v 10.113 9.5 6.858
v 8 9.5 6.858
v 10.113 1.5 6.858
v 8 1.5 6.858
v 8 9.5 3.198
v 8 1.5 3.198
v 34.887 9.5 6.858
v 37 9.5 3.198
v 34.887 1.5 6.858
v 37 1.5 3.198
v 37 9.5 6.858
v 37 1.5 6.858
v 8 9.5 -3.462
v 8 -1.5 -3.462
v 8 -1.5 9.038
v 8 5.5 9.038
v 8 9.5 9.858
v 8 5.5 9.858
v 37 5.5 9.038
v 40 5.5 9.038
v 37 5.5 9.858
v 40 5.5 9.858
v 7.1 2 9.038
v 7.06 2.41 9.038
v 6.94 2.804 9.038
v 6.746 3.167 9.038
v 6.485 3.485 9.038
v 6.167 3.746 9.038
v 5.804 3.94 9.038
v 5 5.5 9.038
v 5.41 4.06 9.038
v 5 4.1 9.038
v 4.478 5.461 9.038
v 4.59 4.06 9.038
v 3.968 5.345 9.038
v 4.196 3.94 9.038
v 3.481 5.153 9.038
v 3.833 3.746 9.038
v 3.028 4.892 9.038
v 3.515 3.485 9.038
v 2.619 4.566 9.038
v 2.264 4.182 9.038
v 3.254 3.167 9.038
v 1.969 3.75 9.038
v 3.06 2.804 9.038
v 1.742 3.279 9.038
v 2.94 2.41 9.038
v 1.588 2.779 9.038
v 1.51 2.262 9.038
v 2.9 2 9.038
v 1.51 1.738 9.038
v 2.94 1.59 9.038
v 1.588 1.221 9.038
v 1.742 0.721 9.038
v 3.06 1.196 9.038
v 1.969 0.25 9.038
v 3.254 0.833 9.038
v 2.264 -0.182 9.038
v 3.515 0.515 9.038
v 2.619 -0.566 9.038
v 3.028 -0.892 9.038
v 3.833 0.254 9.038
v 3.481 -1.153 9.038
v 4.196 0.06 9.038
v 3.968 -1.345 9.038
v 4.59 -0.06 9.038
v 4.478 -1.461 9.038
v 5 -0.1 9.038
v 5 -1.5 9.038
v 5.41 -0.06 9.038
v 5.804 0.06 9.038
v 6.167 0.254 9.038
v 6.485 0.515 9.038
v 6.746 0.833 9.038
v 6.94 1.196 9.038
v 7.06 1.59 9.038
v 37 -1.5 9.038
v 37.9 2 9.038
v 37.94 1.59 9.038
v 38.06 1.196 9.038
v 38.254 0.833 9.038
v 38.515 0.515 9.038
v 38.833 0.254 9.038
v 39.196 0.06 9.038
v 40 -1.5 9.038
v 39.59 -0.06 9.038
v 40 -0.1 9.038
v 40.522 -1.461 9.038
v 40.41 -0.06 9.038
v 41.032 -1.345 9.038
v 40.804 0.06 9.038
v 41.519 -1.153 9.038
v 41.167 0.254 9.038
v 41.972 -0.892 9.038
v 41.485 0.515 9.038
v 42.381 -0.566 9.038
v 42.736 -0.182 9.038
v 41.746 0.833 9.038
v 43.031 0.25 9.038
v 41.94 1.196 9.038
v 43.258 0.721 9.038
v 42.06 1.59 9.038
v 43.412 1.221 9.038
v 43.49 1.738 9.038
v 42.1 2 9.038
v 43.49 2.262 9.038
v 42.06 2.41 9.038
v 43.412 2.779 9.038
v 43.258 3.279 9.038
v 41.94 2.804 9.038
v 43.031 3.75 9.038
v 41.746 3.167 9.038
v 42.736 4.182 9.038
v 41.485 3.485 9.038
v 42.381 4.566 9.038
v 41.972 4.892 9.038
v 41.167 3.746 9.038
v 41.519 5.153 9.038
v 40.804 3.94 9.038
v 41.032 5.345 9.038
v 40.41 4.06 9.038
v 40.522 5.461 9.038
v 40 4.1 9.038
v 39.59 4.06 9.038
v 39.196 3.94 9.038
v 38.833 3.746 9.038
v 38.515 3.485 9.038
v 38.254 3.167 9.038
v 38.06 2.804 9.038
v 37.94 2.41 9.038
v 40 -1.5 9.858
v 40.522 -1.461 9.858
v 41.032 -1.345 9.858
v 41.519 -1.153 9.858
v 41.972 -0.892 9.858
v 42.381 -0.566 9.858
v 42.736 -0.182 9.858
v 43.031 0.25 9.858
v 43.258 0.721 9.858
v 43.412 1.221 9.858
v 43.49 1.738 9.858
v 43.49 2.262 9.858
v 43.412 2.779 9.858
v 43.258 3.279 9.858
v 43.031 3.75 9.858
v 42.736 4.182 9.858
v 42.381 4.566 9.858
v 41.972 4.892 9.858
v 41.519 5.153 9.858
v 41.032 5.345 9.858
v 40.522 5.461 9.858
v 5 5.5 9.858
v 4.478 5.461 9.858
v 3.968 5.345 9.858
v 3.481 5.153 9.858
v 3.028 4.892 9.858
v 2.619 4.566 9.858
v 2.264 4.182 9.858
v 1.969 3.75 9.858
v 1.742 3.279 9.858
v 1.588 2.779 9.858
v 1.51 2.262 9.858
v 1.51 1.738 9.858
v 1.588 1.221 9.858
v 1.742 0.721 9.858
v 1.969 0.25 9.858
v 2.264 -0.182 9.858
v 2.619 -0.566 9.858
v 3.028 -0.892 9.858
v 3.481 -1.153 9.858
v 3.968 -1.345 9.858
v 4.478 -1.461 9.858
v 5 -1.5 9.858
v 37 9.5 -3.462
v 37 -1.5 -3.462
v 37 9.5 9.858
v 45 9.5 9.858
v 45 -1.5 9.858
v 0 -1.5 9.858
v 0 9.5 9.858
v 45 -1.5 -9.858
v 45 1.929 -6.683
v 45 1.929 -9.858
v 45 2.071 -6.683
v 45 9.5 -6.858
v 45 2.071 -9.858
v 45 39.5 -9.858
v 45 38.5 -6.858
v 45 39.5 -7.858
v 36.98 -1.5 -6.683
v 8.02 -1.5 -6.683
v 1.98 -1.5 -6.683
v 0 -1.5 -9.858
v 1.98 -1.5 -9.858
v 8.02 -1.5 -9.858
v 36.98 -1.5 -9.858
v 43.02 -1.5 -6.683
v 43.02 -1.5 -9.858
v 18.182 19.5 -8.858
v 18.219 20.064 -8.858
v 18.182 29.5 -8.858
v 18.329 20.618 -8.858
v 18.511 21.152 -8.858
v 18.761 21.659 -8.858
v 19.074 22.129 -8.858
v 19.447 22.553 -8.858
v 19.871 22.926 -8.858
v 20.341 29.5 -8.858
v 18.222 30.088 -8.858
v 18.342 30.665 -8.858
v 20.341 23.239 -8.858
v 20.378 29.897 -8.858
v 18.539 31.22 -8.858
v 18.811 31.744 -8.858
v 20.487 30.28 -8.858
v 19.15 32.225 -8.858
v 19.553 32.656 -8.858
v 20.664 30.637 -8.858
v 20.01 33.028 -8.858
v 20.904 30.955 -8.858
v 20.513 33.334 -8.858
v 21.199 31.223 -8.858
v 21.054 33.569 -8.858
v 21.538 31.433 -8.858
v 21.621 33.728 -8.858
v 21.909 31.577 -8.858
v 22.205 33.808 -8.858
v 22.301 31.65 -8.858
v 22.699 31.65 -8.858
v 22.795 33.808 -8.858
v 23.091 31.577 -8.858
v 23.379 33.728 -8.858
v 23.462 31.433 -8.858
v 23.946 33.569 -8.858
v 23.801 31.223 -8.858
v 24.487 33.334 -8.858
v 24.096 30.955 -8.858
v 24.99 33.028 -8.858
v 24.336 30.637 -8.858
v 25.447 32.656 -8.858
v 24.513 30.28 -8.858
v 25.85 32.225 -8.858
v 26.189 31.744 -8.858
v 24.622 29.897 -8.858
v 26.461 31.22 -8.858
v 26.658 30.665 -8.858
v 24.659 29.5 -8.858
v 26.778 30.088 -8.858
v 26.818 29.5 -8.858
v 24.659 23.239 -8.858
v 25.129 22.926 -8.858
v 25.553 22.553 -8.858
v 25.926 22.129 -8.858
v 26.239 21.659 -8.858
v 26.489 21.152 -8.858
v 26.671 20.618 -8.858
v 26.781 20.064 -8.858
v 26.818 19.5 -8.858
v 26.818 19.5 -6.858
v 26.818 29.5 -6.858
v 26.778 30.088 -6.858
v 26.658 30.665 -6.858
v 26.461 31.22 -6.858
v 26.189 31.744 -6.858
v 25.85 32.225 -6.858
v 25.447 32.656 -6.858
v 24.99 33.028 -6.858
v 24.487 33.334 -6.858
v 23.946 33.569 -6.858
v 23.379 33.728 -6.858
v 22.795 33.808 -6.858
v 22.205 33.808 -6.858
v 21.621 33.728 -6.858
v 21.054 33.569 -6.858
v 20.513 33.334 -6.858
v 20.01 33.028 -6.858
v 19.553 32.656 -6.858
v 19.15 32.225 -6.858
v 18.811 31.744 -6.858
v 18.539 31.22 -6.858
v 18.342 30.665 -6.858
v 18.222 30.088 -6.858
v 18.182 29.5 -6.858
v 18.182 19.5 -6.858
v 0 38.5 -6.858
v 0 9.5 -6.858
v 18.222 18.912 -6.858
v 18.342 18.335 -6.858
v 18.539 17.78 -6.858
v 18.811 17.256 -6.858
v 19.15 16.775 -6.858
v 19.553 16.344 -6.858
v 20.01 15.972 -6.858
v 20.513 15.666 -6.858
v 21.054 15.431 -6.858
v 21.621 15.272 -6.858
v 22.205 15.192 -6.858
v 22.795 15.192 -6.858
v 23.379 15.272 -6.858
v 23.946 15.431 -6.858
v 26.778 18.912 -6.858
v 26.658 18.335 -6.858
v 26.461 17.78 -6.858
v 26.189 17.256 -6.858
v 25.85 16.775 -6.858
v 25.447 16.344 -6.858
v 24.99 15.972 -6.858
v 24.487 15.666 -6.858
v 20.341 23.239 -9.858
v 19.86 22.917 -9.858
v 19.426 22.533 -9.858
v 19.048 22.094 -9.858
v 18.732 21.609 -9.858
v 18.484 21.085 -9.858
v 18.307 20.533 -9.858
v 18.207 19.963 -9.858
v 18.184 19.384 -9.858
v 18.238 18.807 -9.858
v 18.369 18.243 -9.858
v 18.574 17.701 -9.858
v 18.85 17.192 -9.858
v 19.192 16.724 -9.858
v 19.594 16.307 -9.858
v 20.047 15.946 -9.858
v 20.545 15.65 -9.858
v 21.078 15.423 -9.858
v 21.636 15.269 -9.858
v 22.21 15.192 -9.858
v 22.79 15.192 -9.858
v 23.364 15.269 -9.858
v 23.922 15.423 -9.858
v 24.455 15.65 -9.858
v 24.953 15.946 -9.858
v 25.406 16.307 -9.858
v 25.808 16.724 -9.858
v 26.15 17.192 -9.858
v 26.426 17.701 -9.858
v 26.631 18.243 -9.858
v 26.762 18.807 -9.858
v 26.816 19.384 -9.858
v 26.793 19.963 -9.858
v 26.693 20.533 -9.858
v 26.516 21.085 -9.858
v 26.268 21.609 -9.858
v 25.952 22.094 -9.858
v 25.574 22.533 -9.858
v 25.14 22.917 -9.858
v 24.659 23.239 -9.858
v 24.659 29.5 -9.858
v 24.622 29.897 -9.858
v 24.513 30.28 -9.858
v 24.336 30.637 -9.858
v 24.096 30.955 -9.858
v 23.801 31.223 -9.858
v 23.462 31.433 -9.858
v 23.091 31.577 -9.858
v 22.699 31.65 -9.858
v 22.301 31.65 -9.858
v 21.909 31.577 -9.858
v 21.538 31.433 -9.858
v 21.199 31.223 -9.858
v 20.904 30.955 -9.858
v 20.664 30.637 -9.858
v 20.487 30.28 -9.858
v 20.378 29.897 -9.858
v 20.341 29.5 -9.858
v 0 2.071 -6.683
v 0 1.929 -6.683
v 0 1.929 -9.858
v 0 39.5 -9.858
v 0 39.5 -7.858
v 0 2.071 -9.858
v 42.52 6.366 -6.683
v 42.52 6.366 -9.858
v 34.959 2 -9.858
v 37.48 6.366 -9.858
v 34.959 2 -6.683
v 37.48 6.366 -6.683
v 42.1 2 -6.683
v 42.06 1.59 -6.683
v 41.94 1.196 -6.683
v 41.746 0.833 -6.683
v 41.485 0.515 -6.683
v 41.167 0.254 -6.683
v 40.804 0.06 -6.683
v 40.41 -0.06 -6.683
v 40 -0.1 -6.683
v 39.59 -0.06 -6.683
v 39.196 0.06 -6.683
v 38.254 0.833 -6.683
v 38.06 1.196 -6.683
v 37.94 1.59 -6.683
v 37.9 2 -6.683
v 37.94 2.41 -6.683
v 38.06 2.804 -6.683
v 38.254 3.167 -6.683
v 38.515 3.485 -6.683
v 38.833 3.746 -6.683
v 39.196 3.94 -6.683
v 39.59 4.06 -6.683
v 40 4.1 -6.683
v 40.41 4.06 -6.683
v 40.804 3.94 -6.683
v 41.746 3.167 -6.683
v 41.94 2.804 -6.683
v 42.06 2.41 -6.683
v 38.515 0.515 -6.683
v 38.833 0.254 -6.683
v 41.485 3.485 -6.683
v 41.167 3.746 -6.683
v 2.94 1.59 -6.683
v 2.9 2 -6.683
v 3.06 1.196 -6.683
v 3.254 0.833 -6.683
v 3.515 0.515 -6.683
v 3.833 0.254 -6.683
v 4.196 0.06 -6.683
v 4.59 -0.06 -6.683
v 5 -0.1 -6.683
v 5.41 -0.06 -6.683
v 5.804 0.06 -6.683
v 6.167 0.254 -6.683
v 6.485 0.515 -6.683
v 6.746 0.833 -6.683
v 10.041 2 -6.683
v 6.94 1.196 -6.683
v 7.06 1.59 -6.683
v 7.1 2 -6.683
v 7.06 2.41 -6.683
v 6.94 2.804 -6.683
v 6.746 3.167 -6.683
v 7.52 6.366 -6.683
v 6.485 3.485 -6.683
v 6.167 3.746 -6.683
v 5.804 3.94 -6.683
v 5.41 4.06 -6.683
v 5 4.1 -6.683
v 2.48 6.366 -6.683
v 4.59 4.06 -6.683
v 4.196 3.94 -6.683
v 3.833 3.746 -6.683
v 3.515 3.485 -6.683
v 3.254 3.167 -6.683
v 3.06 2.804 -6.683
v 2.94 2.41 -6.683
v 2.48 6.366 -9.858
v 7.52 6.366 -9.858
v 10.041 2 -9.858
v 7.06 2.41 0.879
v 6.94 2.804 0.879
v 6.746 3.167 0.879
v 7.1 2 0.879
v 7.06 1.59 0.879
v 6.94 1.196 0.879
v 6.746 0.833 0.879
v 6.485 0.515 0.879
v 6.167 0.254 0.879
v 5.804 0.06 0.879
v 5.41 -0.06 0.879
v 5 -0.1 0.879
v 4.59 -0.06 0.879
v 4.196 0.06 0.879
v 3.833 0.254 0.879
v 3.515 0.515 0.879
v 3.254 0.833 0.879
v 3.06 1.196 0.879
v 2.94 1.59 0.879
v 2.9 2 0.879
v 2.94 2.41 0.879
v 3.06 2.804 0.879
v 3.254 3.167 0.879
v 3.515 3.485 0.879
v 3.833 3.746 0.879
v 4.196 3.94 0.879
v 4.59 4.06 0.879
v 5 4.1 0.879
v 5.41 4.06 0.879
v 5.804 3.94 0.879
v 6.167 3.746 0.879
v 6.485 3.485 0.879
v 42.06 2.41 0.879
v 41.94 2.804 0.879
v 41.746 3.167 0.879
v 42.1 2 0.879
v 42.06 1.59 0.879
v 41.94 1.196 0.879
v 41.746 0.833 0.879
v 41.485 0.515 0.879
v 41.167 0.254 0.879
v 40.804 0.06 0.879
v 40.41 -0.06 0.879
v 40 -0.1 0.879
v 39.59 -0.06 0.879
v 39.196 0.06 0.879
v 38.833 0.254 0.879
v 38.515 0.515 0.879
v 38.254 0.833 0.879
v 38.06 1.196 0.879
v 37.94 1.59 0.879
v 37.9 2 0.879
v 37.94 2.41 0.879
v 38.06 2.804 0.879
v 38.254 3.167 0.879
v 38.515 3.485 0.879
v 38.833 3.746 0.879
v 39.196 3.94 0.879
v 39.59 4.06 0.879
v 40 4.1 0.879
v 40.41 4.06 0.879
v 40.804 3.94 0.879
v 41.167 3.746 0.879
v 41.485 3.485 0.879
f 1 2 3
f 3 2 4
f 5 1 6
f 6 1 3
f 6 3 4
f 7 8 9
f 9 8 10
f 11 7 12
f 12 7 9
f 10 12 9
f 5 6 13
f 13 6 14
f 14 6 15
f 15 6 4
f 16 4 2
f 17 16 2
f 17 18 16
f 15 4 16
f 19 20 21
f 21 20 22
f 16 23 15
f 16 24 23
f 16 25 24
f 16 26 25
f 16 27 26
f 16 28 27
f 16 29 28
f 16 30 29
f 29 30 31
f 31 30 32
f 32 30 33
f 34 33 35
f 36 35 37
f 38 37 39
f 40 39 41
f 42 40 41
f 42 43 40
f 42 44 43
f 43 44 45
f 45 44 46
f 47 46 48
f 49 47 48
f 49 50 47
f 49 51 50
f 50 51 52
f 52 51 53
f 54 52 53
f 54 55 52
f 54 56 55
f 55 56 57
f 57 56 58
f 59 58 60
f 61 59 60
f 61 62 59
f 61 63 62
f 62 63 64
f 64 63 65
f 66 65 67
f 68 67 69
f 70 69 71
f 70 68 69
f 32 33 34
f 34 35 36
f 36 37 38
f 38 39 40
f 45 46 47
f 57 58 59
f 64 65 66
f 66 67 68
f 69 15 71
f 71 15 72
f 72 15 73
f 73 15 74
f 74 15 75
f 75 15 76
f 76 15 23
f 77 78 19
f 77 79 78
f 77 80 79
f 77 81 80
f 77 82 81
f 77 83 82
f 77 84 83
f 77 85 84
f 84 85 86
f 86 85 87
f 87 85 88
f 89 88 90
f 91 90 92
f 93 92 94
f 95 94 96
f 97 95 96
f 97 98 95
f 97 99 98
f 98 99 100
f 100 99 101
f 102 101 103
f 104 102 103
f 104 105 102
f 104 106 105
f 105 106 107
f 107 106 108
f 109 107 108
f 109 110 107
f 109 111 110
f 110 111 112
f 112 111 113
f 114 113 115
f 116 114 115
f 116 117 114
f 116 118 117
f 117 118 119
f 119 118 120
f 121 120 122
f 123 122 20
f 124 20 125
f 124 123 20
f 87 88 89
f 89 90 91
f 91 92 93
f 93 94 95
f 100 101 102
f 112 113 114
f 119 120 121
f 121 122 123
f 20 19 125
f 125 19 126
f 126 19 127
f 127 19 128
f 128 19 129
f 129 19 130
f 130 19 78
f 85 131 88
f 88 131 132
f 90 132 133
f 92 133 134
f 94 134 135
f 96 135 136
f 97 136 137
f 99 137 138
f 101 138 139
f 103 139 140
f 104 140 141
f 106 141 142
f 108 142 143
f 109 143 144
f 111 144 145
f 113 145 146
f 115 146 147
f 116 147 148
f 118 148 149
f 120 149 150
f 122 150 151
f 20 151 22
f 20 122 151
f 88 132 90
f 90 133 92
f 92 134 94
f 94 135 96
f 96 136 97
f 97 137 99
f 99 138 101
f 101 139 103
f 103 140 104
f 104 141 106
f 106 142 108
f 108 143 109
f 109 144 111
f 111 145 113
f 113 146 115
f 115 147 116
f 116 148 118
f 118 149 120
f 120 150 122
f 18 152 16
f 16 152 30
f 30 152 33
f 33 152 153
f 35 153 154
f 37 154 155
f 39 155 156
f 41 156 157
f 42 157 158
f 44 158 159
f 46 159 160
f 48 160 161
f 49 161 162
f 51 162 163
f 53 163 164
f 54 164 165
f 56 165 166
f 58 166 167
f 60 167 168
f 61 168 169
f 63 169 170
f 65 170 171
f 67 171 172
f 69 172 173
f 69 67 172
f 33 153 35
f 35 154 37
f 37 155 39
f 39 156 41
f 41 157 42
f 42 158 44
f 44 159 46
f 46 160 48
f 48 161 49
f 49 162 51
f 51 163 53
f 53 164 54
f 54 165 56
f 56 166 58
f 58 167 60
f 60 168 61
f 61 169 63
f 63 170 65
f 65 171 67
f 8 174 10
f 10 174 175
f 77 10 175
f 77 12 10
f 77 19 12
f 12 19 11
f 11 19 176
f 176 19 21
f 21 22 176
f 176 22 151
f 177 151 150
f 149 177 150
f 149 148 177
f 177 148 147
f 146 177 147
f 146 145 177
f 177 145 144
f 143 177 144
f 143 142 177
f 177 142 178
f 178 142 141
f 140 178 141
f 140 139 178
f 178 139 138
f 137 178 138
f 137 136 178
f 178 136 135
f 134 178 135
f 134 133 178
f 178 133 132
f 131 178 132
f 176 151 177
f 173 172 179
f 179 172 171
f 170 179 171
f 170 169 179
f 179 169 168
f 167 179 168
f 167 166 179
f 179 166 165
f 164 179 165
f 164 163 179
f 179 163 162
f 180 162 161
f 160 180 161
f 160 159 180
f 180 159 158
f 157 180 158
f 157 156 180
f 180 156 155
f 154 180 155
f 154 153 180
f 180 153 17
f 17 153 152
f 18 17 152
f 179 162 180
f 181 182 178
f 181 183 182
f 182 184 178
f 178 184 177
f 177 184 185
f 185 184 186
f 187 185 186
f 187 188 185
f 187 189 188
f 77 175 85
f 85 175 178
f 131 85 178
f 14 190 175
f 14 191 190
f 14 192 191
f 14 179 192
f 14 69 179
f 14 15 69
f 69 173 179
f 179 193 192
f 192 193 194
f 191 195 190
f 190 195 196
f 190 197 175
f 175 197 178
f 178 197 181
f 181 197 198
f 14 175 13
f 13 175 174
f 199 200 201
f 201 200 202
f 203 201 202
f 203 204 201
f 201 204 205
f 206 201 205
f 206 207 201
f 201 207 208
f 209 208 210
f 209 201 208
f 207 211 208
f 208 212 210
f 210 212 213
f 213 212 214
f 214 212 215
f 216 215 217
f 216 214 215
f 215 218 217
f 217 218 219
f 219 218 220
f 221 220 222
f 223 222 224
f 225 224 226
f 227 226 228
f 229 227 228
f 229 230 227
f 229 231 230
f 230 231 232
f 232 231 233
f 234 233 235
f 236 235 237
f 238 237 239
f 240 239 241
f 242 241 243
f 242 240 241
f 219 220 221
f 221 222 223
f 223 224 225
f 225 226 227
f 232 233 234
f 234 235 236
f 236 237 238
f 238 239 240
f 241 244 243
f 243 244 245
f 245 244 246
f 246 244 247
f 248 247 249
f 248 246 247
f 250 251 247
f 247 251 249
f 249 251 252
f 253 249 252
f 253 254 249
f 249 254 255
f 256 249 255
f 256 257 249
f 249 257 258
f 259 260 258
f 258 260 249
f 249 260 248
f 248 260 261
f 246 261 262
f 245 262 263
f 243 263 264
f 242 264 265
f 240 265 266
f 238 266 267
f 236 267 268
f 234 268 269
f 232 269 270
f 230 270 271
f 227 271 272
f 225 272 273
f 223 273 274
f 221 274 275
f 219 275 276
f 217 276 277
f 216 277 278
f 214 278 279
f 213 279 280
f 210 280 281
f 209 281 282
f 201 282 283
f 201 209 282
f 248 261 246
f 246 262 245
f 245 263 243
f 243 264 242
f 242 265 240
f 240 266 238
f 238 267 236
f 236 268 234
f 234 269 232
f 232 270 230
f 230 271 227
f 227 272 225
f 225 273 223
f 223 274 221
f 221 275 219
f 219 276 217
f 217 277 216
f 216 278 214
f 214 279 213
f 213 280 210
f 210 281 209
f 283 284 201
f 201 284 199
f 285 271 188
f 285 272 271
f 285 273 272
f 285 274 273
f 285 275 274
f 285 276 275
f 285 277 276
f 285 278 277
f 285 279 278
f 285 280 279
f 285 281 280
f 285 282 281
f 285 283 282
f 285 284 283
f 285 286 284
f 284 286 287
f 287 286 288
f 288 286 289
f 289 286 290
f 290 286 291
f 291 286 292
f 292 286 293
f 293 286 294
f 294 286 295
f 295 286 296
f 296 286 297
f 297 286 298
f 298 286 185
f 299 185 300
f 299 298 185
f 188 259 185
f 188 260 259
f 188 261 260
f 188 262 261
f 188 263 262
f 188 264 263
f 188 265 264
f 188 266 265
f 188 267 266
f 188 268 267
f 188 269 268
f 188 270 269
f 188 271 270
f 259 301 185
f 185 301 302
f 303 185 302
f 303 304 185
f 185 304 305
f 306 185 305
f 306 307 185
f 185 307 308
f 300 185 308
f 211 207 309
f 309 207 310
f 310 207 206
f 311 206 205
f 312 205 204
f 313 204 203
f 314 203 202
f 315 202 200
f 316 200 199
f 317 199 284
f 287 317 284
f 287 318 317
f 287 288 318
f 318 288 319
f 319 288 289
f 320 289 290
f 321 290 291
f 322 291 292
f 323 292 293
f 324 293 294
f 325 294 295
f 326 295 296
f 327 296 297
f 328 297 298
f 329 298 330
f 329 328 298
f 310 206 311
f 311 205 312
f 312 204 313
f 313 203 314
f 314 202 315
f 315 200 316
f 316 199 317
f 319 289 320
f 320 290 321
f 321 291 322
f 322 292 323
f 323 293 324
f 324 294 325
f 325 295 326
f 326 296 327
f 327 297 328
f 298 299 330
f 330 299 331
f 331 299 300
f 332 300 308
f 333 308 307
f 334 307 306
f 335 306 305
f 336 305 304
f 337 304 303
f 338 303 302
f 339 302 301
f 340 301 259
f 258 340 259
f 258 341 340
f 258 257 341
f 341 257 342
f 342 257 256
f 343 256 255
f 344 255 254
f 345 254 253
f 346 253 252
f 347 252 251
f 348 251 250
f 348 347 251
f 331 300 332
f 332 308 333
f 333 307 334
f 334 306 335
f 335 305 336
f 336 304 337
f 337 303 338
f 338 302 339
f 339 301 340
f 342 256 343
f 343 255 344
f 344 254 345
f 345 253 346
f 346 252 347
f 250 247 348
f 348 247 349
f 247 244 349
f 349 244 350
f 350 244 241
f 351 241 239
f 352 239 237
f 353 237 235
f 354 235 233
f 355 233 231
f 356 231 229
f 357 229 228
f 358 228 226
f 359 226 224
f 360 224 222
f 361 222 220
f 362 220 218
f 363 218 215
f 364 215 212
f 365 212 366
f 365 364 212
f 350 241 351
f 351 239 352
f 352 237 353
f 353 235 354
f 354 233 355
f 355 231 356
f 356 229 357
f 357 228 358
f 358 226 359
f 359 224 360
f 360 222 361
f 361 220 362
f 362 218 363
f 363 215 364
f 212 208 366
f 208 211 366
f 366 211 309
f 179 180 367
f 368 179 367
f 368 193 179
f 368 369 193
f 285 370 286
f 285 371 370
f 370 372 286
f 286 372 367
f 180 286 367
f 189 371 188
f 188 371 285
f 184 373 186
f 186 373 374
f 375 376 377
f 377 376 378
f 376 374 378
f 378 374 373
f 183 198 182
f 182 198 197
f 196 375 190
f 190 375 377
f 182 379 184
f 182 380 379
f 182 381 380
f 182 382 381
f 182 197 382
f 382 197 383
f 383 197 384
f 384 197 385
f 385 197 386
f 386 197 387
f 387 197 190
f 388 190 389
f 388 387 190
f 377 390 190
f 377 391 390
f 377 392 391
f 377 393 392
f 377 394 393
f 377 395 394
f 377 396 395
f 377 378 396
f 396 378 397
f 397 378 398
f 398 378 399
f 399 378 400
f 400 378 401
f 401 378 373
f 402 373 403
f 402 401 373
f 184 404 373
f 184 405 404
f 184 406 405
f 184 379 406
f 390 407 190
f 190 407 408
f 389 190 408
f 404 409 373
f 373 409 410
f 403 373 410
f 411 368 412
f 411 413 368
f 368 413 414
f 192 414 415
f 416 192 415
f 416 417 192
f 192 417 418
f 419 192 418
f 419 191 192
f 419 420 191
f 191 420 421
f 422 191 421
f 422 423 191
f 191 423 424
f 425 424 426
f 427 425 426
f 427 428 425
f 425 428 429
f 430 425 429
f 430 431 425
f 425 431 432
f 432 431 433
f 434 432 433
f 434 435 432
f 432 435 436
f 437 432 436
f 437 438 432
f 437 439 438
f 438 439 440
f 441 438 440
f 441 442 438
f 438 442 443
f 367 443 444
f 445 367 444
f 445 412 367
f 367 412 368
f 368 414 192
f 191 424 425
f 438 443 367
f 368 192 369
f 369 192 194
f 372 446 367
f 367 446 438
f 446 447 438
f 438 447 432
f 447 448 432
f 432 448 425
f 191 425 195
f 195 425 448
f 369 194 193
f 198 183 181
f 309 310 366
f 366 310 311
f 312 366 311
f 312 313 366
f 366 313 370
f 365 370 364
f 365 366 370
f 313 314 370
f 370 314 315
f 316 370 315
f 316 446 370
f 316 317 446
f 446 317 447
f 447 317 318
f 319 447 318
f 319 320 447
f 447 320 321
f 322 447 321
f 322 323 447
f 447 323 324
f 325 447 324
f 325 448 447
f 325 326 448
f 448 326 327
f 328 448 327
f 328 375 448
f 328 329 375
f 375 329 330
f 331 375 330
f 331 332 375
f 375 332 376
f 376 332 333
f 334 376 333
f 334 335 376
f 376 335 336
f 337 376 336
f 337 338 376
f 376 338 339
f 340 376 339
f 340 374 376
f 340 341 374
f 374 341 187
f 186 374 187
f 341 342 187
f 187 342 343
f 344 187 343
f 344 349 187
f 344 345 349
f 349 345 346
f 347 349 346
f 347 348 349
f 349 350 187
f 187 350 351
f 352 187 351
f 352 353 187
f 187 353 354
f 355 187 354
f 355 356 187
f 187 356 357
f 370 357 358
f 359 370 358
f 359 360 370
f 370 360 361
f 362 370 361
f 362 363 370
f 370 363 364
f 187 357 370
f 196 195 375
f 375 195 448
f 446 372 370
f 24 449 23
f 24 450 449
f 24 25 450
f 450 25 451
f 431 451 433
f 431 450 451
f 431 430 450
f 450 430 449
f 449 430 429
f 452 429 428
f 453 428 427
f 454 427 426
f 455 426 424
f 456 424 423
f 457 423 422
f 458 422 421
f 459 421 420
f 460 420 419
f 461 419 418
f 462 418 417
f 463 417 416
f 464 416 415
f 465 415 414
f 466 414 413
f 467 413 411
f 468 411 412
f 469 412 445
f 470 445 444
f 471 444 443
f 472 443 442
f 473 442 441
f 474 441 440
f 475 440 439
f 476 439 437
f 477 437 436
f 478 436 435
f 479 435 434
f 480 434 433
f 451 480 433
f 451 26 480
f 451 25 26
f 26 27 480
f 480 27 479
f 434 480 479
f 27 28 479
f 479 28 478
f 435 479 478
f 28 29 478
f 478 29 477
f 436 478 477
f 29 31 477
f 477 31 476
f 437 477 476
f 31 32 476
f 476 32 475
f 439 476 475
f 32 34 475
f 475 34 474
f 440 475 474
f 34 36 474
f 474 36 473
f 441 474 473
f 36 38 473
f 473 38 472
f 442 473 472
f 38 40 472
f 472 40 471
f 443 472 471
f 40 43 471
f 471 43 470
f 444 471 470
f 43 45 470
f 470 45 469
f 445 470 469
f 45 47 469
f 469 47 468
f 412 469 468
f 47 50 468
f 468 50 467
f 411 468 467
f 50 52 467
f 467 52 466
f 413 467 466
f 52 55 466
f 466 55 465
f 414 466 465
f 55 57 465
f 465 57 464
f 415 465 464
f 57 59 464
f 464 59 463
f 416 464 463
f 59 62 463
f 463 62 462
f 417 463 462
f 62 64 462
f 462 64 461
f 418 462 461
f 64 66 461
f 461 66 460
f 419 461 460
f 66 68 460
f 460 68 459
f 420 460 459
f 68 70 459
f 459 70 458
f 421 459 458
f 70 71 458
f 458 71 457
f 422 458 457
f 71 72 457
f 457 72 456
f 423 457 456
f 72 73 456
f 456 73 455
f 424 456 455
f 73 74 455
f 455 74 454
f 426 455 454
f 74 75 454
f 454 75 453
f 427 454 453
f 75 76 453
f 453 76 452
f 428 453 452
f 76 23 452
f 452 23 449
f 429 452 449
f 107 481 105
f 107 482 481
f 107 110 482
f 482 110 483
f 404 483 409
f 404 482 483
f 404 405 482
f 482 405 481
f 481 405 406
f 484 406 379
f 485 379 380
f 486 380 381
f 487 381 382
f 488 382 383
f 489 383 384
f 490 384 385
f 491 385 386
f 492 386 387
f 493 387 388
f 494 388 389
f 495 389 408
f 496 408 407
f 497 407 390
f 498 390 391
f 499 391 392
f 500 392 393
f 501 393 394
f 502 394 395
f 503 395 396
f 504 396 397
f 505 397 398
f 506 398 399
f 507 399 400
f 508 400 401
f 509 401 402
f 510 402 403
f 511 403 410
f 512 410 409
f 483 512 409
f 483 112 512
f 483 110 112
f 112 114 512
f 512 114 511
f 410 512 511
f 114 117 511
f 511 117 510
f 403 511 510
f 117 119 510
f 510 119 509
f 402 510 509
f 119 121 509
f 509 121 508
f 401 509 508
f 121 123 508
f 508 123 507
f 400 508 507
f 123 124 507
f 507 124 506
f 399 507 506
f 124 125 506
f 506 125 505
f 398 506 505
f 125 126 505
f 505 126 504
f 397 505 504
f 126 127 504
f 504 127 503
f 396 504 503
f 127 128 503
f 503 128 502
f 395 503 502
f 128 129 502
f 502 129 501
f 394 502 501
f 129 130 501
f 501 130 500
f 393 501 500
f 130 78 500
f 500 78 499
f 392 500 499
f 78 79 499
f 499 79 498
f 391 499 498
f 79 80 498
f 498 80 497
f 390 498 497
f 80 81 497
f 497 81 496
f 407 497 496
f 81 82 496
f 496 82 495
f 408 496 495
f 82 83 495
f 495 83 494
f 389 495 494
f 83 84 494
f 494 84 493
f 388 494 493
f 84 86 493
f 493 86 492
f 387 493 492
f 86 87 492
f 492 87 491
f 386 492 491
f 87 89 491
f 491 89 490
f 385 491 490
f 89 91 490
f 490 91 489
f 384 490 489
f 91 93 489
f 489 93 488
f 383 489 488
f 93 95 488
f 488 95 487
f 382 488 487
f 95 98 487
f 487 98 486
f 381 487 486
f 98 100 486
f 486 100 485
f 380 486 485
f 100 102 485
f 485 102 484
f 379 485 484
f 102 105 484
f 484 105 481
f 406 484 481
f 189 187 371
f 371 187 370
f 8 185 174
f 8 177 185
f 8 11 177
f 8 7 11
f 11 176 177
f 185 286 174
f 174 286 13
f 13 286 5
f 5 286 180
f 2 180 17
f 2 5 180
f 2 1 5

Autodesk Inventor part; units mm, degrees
ref_plane "YZ Plane" through (0, 0, 0) normal (1, 0, 0) x (0, 1, 0)
ref_plane "XZ Plane" through (0, 0, 0) normal (0, 1, 0) x (-1, 0, 0)
ref_plane "XY Plane" through (0, 0, 0) normal (0, 0, 1) x (1, 0, 0)
sketch "Sketch1" plane through (0, 0, 0) normal (1, 0, 0) x (0, 1, 0)
  line L0 (-1.5, 6.858) -> (1.5, 6.858)
  line L1 (1.5, 6.858) -> (1.5, -6.858)
  line L2 (1.5, -6.858) -> (-1.5, -6.858)
  line L3 (-1.5, -6.858) -> (-1.5, 6.858)
  line L4 (-1.5, 6.858) -> (1.5, -6.858) construction
  line L5 (1.5, 6.858) -> (-1.5, -6.858) construction
  line L6 (1.5, 6.858) -> (39.5, 6.858)
  line L7 (39.5, 6.858) -> (39.5, 9.858)
  line L8 (39.5, 9.858) -> (1.5, 9.858)
  line L9 (1.5, 9.858) -> (1.5, 6.858)
  line L10 (1.5, -6.858) -> (39.5, -6.858)
  line L11 (39.5, -6.858) -> (39.5, -9.858)
  line L12 (39.5, -9.858) -> (1.5, -9.858)
  line L13 (1.5, -9.858) -> (1.5, -6.858)
  line L14 (9.5, 6.858) -> (1.5, 6.858)
  line L15 (1.5, 6.858) -> (1.5, -0.142)
  line L16 (1.5, -0.142) -> (9.5, -0.142)
  line L17 (9.5, -0.142) -> (9.5, 6.858)
  line L18 (9.5, -6.858) -> (1.5, -6.858)
  line L19 (1.5, -6.858) -> (1.5, -0.142)
  line L20 (1.5, -0.142) -> (9.5, -0.142)
  line L21 (9.5, -0.142) -> (9.5, -6.858)
  line L22 (9.5, -0.142) -> (1.5, -0.142)
  line L23 (1.5, 6.858) -> (-1.5, 6.858)
  line L24 (-1.5, 6.858) -> (-1.5, 9.858)
  line L25 (-1.5, 9.858) -> (1.5, 9.858)
  line L26 (1.5, 9.858) -> (1.5, 6.858)
  line L27 (1.5, -6.858) -> (-1.5, -6.858)
  line L28 (-1.5, -6.858) -> (-1.5, -9.858)
  line L29 (-1.5, -9.858) -> (1.5, -9.858)
  line L30 (1.5, -9.858) -> (1.5, -6.858)
  point P0 (0, 0)
  dimension "d0" = 3
  dimension "d2" = 13.716
  dimension "d3" = 3
  dimension "d4" = 3
  dimension "d5" = 38
  dimension "d6" = 38
  dimension "d7" = 0
  dimension "d8" = 8
  dimension "d9" = 8
  dimension "d12" = 7
  dimension "d13" = 6.716
extrude "Extrusion1" add sketch "Sketch1" along normal blind 45
sketch "Sketch2" plane through (0, -1.5, 9.858) normal (0, 0, 1) x (1, 0, 0)
  line L0 (5, 7) -> (8.9446, 7)
  arc A0 (5, 7) -> (5, 0) centre (5, 3.5) ccw
  line L1 (8.9446, 0) -> (5, 0)
  arc A1 (13.3822, 14.1239) -> (31.6178, 14.1239) centre (22.5, 3.5) ccw
  line L2 (13.3822, 14.1239) -> (13.3822, 15.7096)
  line L3 (13.6751, 16.4167) -> (15.15, 17.8916)
  arc A2 (13.6751, 16.4167) -> (13.3822, 15.7096) centre (14.3822, 15.7096) ccw
  arc A3 (16.15, 20.3916) -> (15.15, 19.3916) centre (16.15, 19.3916) ccw
  line L4 (15.15, 19.3916) -> (15.15, 17.8916)
  line L5 (28.85, 20.3916) -> (16.15, 20.3916)
  arc A4 (29.85, 19.3916) -> (28.85, 20.3916) centre (28.85, 19.3916) ccw
  line L6 (29.85, 17.8916) -> (29.85, 19.3916)
  line L7 (31.3249, 16.4167) -> (29.85, 17.8916)
  line L8 (31.6178, 15.7096) -> (31.6178, 14.1239)
  arc A5 (31.6178, 15.7096) -> (31.3249, 16.4167) centre (30.6178, 15.7096) ccw
  line L9 (40, 7) -> (36.0554, 7)
  arc A6 (40, 0) -> (40, 7) centre (40, 3.5) ccw
  line L10 (36.0554, 0) -> (40, 0)
  line L11 (40, 7) -> (36.0554, 7)
  arc A7 (40, 0) -> (40, 7) centre (40, 3.5) ccw
  line L12 (36.0554, 0) -> (40, 0)
  line L13 (8.9446, 0) -> (5, 0)
  line L14 (36.0554, 0) -> (40, 0)
  line L15 (0, 41) -> (0, 0)
  line L16 (0, 0) -> (45, 0)
  line L17 (45, 41) -> (45, 0)
  line L18 (0, 41) -> (45, 41)
  line L19 (5, 7) -> (8.9446, 7)
  arc A8 (5, 7) -> (5, 0) centre (5, 3.5) ccw
sketch "Sketch3" plane through (0, -1.5, 9.858) normal (0, 0, 1) x (1, 0, 0)
  line L0 (0, 0) -> (45, 0)
  line L1 (45, 41) -> (45, 0)
  point P0 (0, 41)
  point P1 (0, 1.5)
  point P2 (5, 3.5)
  point P3 (40, 3.5)
  dimension "d16" = 35
  dimension "d18" = 5
  dimension "d19" = 45
  dimension "d20" = 3.5
  dimension "d21" = 3.5
hole "Hole1" at (5, 2, 9.858) at (40, 2, 9.858) direction (0, 0, -1) diameter 4.2 end through all
extrude "Extrusion2" cut sketch "Sketch2" against normal blind 0.82 contours A1 L2 A2 L3 L4 A3 L5 A4 L6 L7 A5 L8 L16 | L16 A1
sketch "Sketch4" plane through (0, -1.5, 9.858) normal (0, 0, 1) x (1, 0, 0)
  arc A0 (36.0554, 0) -> (31.6178, 14.1239) centre (22.5, 3.5) ccw
  line L0 (36.0554, 0) -> (45, 0)
  arc A1 (13.3822, 14.1239) -> (8.9446, 0) centre (22.5, 3.5) ccw
  circle A2 centre (5, 3.5) radius 2.1
  circle A3 centre (40, 3.5) radius 2.1
  arc A4 (5, 7) -> (5, 0) centre (5, 3.5) ccw
  line L1 (5, 7) -> (8.9446, 7)
  line L2 (8.9446, 0) -> (5, 0)
  arc A5 (13.3822, 14.1239) -> (31.6178, 14.1239) centre (22.5, 3.5) ccw
  arc A6 (13.3822, 14.1239) -> (31.6178, 14.1239) centre (22.5, 3.5) ccw
  line L3 (40, 7) -> (36.0554, 7)
  arc A7 (40, 0) -> (40, 7) centre (40, 3.5) ccw
  line L4 (36.0554, 0) -> (40, 0)
  point P0 (0, 1.5)
extrude "Extrusion3" cut sketch "Sketch4" against normal blind 0.82
sketch "Sketch5" plane through (0, -1.5, -9.858) normal (0, 0, -1) x (-1, 0, 0)
  circle A0 centre (-5, 3.5) radius 2.1
  circle A1 centre (-40, 3.5) radius 2.1
  line L0 (-34.959, 3.5) -> (-37.4795, -0.8656)
  line L1 (-37.4795, -0.8656) -> (-42.5205, -0.8656)
  line L2 (-42.5205, -0.8656) -> (-45.041, 3.5)
  line L3 (-45.041, 3.5) -> (-42.5205, 7.8656)
  line L4 (-42.5205, 7.8656) -> (-37.4795, 7.8656)
  line L5 (-37.4795, 7.8656) -> (-34.959, 3.5)
  line L6 (0.041, 3.5) -> (-2.4795, -0.8656)
  line L7 (-2.4795, -0.8656) -> (-7.5205, -0.8656)
  line L8 (-7.5205, -0.8656) -> (-10.041, 3.5)
  line L9 (-10.041, 3.5) -> (-7.5205, 7.8656)
  line L10 (-7.5205, 7.8656) -> (-2.4795, 7.8656)
  line L11 (-2.4795, 7.8656) -> (0.041, 3.5)
  point P0 (0, 1.5)
  point P1 (-40, 3.5)
  point P2 (-5, 3.5)
  dimension "d33" = 8.7312
  dimension "d34" = 8.7312
extrude "Extrusion4" cut sketch "Sketch5" against normal blind 3.175
sketch "Sketch6" plane through (0, 9.5, 6.858) normal (0, 1, 0) x (1, 0, 0)
  line L0 (7.5, 1.82) -> (37.5, 1.82)
  line L1 (37.5, 9.82) -> (7.5, 9.82)
  line L2 (7.5, 1.82) -> (7.5, 9.82)
  line L3 (37.5, 1.82) -> (37.5, 9.82)
  line L4 (7, 10.32) -> (38, 10.32)
  line L5 (38, 10.32) -> (38, 1.32)
  line L6 (38, 1.32) -> (7, 1.32)
  line L7 (7, 1.32) -> (7, 10.32)
  line L8 (8, 10.32) -> (37, 10.32)
  line L9 (37, 10.32) -> (37, 1.32)
  line L10 (37, 1.32) -> (8, 1.32)
  line L11 (8, 1.32) -> (8, 10.32)
  line L12 (0, 0) -> (45, 0)
  line L13 (8, 1.32) -> (37, 1.32)
  line L14 (37, 1.32) -> (37, 0)
  line L15 (37, 0) -> (8, 0)
  line L16 (8, 0) -> (8, 1.32)
  point P0 (0, 6.858)
  dimension "d37" = 0.5
  dimension "d56" = 1
  dimension "d57" = 1
chamfer "Chamfer1" distance 1 angle 45 2 edges at (22.5, 39.5, -6.858) (22.5, 39.5, 6.858)
sketch "Sketch7" plane through (0, 9.5, -6.858) normal (0, 0, 1) x (1, 0, 0)
  line L0 (0, 29) -> (0, 0)
  line L1 (0, 0) -> (45, 0)
  line L2 (45, 29) -> (45, 0)
  circle A0 centre (22.5, 10) radius 4.318
  line L3 (22.5, 10) -> (22.5, 20)
  circle A1 centre (22.5, 20) radius 2.159
  line L4 (20.341, 20) -> (20.341, 6.2605)
  line L5 (24.659, 20) -> (24.659, 6.2605)
  point P0 (0, -9.5)
  dimension "d43" = 8.636
  dimension "d45" = 10
  dimension "d46" = 4.318
  dimension "d47" = 22.5
  dimension "d48" = 45
  dimension "d49" = 10
extrude "Extrusion6" cut sketch "Sketch7" against normal through all
sketch "Sketch8" plane through (0, 9.5, -6.858) normal (0, 0, 1) x (1, 0, 0)
  arc A0 (20.341, 13.7395) -> (24.659, 13.7395) centre (22.5, 10) ccw
  line L0 (20.341, 13.7395) -> (20.341, 20)
  arc A1 (24.659, 20) -> (20.341, 20) centre (22.5, 20) ccw
  line L1 (24.659, 20) -> (24.659, 13.7395)
  line L2 (45, 29) -> (45, 0)
  circle A2 centre (22.5, 20) radius 4.318
  line L3 (18.182, 20) -> (18.182, 10)
  line L4 (26.818, 10) -> (26.818, 20)
  point P0 (0, -9.5)
  dimension "d52" = 4.318
  dimension "d53" = 8.636
extrude "Extrusion7" cut sketch "Sketch8" against normal blind 2 contours L0 A2 L1 A0 | A0 L3 A2 L0 | A2 L1 A1 L0 | A0 L1 A2 L4 picked at (24.9024, 17.6839)
extrude "Extrusion8" cut sketch "Sketch6" against normal through all contours L11 L1 L9 L0 | L0 L9 L6 L11 | L6 L14 L12 L16 | L11 L4 L9 L1
sketch "Sketch9" plane through (0, 0, 0) normal (-1, 0, 0) x (0, 0, 1)
  line L0 (37.1954, 50) -> (6.858, 50)
  line L1 (6.858, 50) -> (6.858, -18)
  line L2 (6.858, -18) -> (37.1954, -18)
  line L3 (37.1954, -18) -> (37.1954, 50)
  point P0 (0, 0)
extrude "Extrusion9" cut sketch "Sketch9" against normal through all
sketch "Sketch10" plane through (0, -1.5, 6.858) normal (0, 0, 1) x (1, 0, 0)
  line L0 (0, 11) -> (8, 11)
  line L1 (0, 0) -> (0, 11)
  line L2 (8, 0) -> (0, 0)
  line L3 (8, 11) -> (8, 0)
  circle A0 centre (5, 3.5) radius 2.1
  line L4 (7.5, 10.5) -> (0.5, 10.5)
  line L5 (0.5, 10.5) -> (0.5, 0.5)
  line L6 (0.5, 0.5) -> (7.5, 0.5)
  line L7 (7.5, 0.5) -> (7.5, 10.5)
  point P0 (0, 1.5)
  dimension "d62" = 0.5
extrude "Extrusion10" add sketch "Sketch10" along normal blind 3 contours L0 L3 L2 L1 | L7 L6 L5 L4
sketch "Sketch11" plane through (37, -1.5, 6.858) normal (0, 0, 1) x (1, 0, 0)
  line L0 (0, 11) -> (0, 0)
  line L1 (8, 0) -> (0, 0)
  line L2 (8, 11) -> (8, 0)
  line L3 (0, 11) -> (8, 11)
  circle A0 centre (3, 3.5) radius 2.1
  line L4 (7.5, 10.5) -> (7.5, 0.5)
  line L5 (7.5, 0.5) -> (0.5, 0.5)
  line L6 (0.5, 0.5) -> (0.5, 10.5)
  line L7 (0.5, 10.5) -> (7.5, 10.5)
  point P0 (-37, 1.5)
  dimension "d65" = 0.5
extrude "Extrusion11" add sketch "Sketch11" along normal blind 3 contours L3 L2 L1 L0 | L4 L5 L6 L7
sketch "Sketch12" plane through (0, -1.5, 9.858) normal (0, 0, 1) x (1, 0, 0)
  circle A0 centre (5, 3.5) radius 2.1
  circle A1 centre (40, 3.5) radius 2.1
  circle A2 centre (5, 3.5) radius 2.1
  line L0 (40, 0) -> (5, 0)
  arc A3 (40, 0) -> (40, 7) centre (40, 3.5) ccw
  line L1 (36.0554, 7) -> (40, 7)
  arc A4 (36.0554, 7) -> (31.6178, 14.1239) centre (22.5, 3.5) ccw
  line L2 (31.6178, 15.7096) -> (31.6178, 14.1239)
  arc A5 (31.6178, 15.7096) -> (31.3249, 16.4167) centre (30.6178, 15.7096) ccw
  line L3 (29.85, 17.8916) -> (31.3249, 16.4167)
  line L4 (29.85, 19.3916) -> (29.85, 17.8916)
  arc A6 (29.85, 19.3916) -> (28.85, 20.3916) centre (28.85, 19.3916) ccw
  line L5 (16.15, 20.3916) -> (28.85, 20.3916)
  arc A7 (16.15, 20.3916) -> (15.15, 19.3916) centre (16.15, 19.3916) ccw
  line L6 (15.15, 17.8916) -> (15.15, 19.3916)
  line L7 (13.6751, 16.4167) -> (15.15, 17.8916)
  arc A8 (13.6751, 16.4167) -> (13.3822, 15.7096) centre (14.3822, 15.7096) ccw
  line L8 (13.3822, 14.1239) -> (13.3822, 15.7096)
  arc A9 (13.3822, 14.1239) -> (8.9446, 7) centre (22.5, 3.5) ccw
  line L9 (5, 7) -> (8.9446, 7)
  arc A10 (5, 7) -> (5, 0) centre (5, 3.5) ccw
  point P0 (0, 1.5)
extrude "Extrusion12" cut sketch "Sketch12" against normal blind 0.82
sketch "Sketch13" plane through (0, 9.5, -6.858) normal (0, 1, 0) x (1, 0, 0)
  line L0 (37, -3.396) -> (37, -16.716)
  line L1 (8, -16.716) -> (8, -3.396)
  line L2 (45, -14.716) -> (45, -13.716)
  line L3 (45, -13.716) -> (0, -13.716)
  line L4 (0, -13.716) -> (0, -14.716)
  line L5 (0, -14.716) -> (45, -14.716)
  line L6 (8, -10.056) -> (10.1131, -13.716)
  line L7 (37, -10.056) -> (34.8869, -13.716)
  line L8 (37, -10.056) -> (37, -13.716)
  line L9 (37, -13.716) -> (34.8869, -13.716)
  line L10 (10.1131, -13.716) -> (8, -13.716)
  line L11 (8, -13.716) -> (8, -10.056)
  point P0 (0, -6.858)
  dimension "d70" = 30
  dimension "d71" = 30
extrude "Extrusion13" add sketch "Sketch13" against normal blind 8 contours L0 L3 L7 | L3 L1 L6
equation "\"d2\" = StretcherDepth"
equation "\"d6\" = d5"
equation "\"d9\" = d8"
equation "\"d47\" = 0.5 * d48"
equation "\"d53\" = 2 * d52"
properties part number "MotorClipV3Back" material "ABS Plastic"
